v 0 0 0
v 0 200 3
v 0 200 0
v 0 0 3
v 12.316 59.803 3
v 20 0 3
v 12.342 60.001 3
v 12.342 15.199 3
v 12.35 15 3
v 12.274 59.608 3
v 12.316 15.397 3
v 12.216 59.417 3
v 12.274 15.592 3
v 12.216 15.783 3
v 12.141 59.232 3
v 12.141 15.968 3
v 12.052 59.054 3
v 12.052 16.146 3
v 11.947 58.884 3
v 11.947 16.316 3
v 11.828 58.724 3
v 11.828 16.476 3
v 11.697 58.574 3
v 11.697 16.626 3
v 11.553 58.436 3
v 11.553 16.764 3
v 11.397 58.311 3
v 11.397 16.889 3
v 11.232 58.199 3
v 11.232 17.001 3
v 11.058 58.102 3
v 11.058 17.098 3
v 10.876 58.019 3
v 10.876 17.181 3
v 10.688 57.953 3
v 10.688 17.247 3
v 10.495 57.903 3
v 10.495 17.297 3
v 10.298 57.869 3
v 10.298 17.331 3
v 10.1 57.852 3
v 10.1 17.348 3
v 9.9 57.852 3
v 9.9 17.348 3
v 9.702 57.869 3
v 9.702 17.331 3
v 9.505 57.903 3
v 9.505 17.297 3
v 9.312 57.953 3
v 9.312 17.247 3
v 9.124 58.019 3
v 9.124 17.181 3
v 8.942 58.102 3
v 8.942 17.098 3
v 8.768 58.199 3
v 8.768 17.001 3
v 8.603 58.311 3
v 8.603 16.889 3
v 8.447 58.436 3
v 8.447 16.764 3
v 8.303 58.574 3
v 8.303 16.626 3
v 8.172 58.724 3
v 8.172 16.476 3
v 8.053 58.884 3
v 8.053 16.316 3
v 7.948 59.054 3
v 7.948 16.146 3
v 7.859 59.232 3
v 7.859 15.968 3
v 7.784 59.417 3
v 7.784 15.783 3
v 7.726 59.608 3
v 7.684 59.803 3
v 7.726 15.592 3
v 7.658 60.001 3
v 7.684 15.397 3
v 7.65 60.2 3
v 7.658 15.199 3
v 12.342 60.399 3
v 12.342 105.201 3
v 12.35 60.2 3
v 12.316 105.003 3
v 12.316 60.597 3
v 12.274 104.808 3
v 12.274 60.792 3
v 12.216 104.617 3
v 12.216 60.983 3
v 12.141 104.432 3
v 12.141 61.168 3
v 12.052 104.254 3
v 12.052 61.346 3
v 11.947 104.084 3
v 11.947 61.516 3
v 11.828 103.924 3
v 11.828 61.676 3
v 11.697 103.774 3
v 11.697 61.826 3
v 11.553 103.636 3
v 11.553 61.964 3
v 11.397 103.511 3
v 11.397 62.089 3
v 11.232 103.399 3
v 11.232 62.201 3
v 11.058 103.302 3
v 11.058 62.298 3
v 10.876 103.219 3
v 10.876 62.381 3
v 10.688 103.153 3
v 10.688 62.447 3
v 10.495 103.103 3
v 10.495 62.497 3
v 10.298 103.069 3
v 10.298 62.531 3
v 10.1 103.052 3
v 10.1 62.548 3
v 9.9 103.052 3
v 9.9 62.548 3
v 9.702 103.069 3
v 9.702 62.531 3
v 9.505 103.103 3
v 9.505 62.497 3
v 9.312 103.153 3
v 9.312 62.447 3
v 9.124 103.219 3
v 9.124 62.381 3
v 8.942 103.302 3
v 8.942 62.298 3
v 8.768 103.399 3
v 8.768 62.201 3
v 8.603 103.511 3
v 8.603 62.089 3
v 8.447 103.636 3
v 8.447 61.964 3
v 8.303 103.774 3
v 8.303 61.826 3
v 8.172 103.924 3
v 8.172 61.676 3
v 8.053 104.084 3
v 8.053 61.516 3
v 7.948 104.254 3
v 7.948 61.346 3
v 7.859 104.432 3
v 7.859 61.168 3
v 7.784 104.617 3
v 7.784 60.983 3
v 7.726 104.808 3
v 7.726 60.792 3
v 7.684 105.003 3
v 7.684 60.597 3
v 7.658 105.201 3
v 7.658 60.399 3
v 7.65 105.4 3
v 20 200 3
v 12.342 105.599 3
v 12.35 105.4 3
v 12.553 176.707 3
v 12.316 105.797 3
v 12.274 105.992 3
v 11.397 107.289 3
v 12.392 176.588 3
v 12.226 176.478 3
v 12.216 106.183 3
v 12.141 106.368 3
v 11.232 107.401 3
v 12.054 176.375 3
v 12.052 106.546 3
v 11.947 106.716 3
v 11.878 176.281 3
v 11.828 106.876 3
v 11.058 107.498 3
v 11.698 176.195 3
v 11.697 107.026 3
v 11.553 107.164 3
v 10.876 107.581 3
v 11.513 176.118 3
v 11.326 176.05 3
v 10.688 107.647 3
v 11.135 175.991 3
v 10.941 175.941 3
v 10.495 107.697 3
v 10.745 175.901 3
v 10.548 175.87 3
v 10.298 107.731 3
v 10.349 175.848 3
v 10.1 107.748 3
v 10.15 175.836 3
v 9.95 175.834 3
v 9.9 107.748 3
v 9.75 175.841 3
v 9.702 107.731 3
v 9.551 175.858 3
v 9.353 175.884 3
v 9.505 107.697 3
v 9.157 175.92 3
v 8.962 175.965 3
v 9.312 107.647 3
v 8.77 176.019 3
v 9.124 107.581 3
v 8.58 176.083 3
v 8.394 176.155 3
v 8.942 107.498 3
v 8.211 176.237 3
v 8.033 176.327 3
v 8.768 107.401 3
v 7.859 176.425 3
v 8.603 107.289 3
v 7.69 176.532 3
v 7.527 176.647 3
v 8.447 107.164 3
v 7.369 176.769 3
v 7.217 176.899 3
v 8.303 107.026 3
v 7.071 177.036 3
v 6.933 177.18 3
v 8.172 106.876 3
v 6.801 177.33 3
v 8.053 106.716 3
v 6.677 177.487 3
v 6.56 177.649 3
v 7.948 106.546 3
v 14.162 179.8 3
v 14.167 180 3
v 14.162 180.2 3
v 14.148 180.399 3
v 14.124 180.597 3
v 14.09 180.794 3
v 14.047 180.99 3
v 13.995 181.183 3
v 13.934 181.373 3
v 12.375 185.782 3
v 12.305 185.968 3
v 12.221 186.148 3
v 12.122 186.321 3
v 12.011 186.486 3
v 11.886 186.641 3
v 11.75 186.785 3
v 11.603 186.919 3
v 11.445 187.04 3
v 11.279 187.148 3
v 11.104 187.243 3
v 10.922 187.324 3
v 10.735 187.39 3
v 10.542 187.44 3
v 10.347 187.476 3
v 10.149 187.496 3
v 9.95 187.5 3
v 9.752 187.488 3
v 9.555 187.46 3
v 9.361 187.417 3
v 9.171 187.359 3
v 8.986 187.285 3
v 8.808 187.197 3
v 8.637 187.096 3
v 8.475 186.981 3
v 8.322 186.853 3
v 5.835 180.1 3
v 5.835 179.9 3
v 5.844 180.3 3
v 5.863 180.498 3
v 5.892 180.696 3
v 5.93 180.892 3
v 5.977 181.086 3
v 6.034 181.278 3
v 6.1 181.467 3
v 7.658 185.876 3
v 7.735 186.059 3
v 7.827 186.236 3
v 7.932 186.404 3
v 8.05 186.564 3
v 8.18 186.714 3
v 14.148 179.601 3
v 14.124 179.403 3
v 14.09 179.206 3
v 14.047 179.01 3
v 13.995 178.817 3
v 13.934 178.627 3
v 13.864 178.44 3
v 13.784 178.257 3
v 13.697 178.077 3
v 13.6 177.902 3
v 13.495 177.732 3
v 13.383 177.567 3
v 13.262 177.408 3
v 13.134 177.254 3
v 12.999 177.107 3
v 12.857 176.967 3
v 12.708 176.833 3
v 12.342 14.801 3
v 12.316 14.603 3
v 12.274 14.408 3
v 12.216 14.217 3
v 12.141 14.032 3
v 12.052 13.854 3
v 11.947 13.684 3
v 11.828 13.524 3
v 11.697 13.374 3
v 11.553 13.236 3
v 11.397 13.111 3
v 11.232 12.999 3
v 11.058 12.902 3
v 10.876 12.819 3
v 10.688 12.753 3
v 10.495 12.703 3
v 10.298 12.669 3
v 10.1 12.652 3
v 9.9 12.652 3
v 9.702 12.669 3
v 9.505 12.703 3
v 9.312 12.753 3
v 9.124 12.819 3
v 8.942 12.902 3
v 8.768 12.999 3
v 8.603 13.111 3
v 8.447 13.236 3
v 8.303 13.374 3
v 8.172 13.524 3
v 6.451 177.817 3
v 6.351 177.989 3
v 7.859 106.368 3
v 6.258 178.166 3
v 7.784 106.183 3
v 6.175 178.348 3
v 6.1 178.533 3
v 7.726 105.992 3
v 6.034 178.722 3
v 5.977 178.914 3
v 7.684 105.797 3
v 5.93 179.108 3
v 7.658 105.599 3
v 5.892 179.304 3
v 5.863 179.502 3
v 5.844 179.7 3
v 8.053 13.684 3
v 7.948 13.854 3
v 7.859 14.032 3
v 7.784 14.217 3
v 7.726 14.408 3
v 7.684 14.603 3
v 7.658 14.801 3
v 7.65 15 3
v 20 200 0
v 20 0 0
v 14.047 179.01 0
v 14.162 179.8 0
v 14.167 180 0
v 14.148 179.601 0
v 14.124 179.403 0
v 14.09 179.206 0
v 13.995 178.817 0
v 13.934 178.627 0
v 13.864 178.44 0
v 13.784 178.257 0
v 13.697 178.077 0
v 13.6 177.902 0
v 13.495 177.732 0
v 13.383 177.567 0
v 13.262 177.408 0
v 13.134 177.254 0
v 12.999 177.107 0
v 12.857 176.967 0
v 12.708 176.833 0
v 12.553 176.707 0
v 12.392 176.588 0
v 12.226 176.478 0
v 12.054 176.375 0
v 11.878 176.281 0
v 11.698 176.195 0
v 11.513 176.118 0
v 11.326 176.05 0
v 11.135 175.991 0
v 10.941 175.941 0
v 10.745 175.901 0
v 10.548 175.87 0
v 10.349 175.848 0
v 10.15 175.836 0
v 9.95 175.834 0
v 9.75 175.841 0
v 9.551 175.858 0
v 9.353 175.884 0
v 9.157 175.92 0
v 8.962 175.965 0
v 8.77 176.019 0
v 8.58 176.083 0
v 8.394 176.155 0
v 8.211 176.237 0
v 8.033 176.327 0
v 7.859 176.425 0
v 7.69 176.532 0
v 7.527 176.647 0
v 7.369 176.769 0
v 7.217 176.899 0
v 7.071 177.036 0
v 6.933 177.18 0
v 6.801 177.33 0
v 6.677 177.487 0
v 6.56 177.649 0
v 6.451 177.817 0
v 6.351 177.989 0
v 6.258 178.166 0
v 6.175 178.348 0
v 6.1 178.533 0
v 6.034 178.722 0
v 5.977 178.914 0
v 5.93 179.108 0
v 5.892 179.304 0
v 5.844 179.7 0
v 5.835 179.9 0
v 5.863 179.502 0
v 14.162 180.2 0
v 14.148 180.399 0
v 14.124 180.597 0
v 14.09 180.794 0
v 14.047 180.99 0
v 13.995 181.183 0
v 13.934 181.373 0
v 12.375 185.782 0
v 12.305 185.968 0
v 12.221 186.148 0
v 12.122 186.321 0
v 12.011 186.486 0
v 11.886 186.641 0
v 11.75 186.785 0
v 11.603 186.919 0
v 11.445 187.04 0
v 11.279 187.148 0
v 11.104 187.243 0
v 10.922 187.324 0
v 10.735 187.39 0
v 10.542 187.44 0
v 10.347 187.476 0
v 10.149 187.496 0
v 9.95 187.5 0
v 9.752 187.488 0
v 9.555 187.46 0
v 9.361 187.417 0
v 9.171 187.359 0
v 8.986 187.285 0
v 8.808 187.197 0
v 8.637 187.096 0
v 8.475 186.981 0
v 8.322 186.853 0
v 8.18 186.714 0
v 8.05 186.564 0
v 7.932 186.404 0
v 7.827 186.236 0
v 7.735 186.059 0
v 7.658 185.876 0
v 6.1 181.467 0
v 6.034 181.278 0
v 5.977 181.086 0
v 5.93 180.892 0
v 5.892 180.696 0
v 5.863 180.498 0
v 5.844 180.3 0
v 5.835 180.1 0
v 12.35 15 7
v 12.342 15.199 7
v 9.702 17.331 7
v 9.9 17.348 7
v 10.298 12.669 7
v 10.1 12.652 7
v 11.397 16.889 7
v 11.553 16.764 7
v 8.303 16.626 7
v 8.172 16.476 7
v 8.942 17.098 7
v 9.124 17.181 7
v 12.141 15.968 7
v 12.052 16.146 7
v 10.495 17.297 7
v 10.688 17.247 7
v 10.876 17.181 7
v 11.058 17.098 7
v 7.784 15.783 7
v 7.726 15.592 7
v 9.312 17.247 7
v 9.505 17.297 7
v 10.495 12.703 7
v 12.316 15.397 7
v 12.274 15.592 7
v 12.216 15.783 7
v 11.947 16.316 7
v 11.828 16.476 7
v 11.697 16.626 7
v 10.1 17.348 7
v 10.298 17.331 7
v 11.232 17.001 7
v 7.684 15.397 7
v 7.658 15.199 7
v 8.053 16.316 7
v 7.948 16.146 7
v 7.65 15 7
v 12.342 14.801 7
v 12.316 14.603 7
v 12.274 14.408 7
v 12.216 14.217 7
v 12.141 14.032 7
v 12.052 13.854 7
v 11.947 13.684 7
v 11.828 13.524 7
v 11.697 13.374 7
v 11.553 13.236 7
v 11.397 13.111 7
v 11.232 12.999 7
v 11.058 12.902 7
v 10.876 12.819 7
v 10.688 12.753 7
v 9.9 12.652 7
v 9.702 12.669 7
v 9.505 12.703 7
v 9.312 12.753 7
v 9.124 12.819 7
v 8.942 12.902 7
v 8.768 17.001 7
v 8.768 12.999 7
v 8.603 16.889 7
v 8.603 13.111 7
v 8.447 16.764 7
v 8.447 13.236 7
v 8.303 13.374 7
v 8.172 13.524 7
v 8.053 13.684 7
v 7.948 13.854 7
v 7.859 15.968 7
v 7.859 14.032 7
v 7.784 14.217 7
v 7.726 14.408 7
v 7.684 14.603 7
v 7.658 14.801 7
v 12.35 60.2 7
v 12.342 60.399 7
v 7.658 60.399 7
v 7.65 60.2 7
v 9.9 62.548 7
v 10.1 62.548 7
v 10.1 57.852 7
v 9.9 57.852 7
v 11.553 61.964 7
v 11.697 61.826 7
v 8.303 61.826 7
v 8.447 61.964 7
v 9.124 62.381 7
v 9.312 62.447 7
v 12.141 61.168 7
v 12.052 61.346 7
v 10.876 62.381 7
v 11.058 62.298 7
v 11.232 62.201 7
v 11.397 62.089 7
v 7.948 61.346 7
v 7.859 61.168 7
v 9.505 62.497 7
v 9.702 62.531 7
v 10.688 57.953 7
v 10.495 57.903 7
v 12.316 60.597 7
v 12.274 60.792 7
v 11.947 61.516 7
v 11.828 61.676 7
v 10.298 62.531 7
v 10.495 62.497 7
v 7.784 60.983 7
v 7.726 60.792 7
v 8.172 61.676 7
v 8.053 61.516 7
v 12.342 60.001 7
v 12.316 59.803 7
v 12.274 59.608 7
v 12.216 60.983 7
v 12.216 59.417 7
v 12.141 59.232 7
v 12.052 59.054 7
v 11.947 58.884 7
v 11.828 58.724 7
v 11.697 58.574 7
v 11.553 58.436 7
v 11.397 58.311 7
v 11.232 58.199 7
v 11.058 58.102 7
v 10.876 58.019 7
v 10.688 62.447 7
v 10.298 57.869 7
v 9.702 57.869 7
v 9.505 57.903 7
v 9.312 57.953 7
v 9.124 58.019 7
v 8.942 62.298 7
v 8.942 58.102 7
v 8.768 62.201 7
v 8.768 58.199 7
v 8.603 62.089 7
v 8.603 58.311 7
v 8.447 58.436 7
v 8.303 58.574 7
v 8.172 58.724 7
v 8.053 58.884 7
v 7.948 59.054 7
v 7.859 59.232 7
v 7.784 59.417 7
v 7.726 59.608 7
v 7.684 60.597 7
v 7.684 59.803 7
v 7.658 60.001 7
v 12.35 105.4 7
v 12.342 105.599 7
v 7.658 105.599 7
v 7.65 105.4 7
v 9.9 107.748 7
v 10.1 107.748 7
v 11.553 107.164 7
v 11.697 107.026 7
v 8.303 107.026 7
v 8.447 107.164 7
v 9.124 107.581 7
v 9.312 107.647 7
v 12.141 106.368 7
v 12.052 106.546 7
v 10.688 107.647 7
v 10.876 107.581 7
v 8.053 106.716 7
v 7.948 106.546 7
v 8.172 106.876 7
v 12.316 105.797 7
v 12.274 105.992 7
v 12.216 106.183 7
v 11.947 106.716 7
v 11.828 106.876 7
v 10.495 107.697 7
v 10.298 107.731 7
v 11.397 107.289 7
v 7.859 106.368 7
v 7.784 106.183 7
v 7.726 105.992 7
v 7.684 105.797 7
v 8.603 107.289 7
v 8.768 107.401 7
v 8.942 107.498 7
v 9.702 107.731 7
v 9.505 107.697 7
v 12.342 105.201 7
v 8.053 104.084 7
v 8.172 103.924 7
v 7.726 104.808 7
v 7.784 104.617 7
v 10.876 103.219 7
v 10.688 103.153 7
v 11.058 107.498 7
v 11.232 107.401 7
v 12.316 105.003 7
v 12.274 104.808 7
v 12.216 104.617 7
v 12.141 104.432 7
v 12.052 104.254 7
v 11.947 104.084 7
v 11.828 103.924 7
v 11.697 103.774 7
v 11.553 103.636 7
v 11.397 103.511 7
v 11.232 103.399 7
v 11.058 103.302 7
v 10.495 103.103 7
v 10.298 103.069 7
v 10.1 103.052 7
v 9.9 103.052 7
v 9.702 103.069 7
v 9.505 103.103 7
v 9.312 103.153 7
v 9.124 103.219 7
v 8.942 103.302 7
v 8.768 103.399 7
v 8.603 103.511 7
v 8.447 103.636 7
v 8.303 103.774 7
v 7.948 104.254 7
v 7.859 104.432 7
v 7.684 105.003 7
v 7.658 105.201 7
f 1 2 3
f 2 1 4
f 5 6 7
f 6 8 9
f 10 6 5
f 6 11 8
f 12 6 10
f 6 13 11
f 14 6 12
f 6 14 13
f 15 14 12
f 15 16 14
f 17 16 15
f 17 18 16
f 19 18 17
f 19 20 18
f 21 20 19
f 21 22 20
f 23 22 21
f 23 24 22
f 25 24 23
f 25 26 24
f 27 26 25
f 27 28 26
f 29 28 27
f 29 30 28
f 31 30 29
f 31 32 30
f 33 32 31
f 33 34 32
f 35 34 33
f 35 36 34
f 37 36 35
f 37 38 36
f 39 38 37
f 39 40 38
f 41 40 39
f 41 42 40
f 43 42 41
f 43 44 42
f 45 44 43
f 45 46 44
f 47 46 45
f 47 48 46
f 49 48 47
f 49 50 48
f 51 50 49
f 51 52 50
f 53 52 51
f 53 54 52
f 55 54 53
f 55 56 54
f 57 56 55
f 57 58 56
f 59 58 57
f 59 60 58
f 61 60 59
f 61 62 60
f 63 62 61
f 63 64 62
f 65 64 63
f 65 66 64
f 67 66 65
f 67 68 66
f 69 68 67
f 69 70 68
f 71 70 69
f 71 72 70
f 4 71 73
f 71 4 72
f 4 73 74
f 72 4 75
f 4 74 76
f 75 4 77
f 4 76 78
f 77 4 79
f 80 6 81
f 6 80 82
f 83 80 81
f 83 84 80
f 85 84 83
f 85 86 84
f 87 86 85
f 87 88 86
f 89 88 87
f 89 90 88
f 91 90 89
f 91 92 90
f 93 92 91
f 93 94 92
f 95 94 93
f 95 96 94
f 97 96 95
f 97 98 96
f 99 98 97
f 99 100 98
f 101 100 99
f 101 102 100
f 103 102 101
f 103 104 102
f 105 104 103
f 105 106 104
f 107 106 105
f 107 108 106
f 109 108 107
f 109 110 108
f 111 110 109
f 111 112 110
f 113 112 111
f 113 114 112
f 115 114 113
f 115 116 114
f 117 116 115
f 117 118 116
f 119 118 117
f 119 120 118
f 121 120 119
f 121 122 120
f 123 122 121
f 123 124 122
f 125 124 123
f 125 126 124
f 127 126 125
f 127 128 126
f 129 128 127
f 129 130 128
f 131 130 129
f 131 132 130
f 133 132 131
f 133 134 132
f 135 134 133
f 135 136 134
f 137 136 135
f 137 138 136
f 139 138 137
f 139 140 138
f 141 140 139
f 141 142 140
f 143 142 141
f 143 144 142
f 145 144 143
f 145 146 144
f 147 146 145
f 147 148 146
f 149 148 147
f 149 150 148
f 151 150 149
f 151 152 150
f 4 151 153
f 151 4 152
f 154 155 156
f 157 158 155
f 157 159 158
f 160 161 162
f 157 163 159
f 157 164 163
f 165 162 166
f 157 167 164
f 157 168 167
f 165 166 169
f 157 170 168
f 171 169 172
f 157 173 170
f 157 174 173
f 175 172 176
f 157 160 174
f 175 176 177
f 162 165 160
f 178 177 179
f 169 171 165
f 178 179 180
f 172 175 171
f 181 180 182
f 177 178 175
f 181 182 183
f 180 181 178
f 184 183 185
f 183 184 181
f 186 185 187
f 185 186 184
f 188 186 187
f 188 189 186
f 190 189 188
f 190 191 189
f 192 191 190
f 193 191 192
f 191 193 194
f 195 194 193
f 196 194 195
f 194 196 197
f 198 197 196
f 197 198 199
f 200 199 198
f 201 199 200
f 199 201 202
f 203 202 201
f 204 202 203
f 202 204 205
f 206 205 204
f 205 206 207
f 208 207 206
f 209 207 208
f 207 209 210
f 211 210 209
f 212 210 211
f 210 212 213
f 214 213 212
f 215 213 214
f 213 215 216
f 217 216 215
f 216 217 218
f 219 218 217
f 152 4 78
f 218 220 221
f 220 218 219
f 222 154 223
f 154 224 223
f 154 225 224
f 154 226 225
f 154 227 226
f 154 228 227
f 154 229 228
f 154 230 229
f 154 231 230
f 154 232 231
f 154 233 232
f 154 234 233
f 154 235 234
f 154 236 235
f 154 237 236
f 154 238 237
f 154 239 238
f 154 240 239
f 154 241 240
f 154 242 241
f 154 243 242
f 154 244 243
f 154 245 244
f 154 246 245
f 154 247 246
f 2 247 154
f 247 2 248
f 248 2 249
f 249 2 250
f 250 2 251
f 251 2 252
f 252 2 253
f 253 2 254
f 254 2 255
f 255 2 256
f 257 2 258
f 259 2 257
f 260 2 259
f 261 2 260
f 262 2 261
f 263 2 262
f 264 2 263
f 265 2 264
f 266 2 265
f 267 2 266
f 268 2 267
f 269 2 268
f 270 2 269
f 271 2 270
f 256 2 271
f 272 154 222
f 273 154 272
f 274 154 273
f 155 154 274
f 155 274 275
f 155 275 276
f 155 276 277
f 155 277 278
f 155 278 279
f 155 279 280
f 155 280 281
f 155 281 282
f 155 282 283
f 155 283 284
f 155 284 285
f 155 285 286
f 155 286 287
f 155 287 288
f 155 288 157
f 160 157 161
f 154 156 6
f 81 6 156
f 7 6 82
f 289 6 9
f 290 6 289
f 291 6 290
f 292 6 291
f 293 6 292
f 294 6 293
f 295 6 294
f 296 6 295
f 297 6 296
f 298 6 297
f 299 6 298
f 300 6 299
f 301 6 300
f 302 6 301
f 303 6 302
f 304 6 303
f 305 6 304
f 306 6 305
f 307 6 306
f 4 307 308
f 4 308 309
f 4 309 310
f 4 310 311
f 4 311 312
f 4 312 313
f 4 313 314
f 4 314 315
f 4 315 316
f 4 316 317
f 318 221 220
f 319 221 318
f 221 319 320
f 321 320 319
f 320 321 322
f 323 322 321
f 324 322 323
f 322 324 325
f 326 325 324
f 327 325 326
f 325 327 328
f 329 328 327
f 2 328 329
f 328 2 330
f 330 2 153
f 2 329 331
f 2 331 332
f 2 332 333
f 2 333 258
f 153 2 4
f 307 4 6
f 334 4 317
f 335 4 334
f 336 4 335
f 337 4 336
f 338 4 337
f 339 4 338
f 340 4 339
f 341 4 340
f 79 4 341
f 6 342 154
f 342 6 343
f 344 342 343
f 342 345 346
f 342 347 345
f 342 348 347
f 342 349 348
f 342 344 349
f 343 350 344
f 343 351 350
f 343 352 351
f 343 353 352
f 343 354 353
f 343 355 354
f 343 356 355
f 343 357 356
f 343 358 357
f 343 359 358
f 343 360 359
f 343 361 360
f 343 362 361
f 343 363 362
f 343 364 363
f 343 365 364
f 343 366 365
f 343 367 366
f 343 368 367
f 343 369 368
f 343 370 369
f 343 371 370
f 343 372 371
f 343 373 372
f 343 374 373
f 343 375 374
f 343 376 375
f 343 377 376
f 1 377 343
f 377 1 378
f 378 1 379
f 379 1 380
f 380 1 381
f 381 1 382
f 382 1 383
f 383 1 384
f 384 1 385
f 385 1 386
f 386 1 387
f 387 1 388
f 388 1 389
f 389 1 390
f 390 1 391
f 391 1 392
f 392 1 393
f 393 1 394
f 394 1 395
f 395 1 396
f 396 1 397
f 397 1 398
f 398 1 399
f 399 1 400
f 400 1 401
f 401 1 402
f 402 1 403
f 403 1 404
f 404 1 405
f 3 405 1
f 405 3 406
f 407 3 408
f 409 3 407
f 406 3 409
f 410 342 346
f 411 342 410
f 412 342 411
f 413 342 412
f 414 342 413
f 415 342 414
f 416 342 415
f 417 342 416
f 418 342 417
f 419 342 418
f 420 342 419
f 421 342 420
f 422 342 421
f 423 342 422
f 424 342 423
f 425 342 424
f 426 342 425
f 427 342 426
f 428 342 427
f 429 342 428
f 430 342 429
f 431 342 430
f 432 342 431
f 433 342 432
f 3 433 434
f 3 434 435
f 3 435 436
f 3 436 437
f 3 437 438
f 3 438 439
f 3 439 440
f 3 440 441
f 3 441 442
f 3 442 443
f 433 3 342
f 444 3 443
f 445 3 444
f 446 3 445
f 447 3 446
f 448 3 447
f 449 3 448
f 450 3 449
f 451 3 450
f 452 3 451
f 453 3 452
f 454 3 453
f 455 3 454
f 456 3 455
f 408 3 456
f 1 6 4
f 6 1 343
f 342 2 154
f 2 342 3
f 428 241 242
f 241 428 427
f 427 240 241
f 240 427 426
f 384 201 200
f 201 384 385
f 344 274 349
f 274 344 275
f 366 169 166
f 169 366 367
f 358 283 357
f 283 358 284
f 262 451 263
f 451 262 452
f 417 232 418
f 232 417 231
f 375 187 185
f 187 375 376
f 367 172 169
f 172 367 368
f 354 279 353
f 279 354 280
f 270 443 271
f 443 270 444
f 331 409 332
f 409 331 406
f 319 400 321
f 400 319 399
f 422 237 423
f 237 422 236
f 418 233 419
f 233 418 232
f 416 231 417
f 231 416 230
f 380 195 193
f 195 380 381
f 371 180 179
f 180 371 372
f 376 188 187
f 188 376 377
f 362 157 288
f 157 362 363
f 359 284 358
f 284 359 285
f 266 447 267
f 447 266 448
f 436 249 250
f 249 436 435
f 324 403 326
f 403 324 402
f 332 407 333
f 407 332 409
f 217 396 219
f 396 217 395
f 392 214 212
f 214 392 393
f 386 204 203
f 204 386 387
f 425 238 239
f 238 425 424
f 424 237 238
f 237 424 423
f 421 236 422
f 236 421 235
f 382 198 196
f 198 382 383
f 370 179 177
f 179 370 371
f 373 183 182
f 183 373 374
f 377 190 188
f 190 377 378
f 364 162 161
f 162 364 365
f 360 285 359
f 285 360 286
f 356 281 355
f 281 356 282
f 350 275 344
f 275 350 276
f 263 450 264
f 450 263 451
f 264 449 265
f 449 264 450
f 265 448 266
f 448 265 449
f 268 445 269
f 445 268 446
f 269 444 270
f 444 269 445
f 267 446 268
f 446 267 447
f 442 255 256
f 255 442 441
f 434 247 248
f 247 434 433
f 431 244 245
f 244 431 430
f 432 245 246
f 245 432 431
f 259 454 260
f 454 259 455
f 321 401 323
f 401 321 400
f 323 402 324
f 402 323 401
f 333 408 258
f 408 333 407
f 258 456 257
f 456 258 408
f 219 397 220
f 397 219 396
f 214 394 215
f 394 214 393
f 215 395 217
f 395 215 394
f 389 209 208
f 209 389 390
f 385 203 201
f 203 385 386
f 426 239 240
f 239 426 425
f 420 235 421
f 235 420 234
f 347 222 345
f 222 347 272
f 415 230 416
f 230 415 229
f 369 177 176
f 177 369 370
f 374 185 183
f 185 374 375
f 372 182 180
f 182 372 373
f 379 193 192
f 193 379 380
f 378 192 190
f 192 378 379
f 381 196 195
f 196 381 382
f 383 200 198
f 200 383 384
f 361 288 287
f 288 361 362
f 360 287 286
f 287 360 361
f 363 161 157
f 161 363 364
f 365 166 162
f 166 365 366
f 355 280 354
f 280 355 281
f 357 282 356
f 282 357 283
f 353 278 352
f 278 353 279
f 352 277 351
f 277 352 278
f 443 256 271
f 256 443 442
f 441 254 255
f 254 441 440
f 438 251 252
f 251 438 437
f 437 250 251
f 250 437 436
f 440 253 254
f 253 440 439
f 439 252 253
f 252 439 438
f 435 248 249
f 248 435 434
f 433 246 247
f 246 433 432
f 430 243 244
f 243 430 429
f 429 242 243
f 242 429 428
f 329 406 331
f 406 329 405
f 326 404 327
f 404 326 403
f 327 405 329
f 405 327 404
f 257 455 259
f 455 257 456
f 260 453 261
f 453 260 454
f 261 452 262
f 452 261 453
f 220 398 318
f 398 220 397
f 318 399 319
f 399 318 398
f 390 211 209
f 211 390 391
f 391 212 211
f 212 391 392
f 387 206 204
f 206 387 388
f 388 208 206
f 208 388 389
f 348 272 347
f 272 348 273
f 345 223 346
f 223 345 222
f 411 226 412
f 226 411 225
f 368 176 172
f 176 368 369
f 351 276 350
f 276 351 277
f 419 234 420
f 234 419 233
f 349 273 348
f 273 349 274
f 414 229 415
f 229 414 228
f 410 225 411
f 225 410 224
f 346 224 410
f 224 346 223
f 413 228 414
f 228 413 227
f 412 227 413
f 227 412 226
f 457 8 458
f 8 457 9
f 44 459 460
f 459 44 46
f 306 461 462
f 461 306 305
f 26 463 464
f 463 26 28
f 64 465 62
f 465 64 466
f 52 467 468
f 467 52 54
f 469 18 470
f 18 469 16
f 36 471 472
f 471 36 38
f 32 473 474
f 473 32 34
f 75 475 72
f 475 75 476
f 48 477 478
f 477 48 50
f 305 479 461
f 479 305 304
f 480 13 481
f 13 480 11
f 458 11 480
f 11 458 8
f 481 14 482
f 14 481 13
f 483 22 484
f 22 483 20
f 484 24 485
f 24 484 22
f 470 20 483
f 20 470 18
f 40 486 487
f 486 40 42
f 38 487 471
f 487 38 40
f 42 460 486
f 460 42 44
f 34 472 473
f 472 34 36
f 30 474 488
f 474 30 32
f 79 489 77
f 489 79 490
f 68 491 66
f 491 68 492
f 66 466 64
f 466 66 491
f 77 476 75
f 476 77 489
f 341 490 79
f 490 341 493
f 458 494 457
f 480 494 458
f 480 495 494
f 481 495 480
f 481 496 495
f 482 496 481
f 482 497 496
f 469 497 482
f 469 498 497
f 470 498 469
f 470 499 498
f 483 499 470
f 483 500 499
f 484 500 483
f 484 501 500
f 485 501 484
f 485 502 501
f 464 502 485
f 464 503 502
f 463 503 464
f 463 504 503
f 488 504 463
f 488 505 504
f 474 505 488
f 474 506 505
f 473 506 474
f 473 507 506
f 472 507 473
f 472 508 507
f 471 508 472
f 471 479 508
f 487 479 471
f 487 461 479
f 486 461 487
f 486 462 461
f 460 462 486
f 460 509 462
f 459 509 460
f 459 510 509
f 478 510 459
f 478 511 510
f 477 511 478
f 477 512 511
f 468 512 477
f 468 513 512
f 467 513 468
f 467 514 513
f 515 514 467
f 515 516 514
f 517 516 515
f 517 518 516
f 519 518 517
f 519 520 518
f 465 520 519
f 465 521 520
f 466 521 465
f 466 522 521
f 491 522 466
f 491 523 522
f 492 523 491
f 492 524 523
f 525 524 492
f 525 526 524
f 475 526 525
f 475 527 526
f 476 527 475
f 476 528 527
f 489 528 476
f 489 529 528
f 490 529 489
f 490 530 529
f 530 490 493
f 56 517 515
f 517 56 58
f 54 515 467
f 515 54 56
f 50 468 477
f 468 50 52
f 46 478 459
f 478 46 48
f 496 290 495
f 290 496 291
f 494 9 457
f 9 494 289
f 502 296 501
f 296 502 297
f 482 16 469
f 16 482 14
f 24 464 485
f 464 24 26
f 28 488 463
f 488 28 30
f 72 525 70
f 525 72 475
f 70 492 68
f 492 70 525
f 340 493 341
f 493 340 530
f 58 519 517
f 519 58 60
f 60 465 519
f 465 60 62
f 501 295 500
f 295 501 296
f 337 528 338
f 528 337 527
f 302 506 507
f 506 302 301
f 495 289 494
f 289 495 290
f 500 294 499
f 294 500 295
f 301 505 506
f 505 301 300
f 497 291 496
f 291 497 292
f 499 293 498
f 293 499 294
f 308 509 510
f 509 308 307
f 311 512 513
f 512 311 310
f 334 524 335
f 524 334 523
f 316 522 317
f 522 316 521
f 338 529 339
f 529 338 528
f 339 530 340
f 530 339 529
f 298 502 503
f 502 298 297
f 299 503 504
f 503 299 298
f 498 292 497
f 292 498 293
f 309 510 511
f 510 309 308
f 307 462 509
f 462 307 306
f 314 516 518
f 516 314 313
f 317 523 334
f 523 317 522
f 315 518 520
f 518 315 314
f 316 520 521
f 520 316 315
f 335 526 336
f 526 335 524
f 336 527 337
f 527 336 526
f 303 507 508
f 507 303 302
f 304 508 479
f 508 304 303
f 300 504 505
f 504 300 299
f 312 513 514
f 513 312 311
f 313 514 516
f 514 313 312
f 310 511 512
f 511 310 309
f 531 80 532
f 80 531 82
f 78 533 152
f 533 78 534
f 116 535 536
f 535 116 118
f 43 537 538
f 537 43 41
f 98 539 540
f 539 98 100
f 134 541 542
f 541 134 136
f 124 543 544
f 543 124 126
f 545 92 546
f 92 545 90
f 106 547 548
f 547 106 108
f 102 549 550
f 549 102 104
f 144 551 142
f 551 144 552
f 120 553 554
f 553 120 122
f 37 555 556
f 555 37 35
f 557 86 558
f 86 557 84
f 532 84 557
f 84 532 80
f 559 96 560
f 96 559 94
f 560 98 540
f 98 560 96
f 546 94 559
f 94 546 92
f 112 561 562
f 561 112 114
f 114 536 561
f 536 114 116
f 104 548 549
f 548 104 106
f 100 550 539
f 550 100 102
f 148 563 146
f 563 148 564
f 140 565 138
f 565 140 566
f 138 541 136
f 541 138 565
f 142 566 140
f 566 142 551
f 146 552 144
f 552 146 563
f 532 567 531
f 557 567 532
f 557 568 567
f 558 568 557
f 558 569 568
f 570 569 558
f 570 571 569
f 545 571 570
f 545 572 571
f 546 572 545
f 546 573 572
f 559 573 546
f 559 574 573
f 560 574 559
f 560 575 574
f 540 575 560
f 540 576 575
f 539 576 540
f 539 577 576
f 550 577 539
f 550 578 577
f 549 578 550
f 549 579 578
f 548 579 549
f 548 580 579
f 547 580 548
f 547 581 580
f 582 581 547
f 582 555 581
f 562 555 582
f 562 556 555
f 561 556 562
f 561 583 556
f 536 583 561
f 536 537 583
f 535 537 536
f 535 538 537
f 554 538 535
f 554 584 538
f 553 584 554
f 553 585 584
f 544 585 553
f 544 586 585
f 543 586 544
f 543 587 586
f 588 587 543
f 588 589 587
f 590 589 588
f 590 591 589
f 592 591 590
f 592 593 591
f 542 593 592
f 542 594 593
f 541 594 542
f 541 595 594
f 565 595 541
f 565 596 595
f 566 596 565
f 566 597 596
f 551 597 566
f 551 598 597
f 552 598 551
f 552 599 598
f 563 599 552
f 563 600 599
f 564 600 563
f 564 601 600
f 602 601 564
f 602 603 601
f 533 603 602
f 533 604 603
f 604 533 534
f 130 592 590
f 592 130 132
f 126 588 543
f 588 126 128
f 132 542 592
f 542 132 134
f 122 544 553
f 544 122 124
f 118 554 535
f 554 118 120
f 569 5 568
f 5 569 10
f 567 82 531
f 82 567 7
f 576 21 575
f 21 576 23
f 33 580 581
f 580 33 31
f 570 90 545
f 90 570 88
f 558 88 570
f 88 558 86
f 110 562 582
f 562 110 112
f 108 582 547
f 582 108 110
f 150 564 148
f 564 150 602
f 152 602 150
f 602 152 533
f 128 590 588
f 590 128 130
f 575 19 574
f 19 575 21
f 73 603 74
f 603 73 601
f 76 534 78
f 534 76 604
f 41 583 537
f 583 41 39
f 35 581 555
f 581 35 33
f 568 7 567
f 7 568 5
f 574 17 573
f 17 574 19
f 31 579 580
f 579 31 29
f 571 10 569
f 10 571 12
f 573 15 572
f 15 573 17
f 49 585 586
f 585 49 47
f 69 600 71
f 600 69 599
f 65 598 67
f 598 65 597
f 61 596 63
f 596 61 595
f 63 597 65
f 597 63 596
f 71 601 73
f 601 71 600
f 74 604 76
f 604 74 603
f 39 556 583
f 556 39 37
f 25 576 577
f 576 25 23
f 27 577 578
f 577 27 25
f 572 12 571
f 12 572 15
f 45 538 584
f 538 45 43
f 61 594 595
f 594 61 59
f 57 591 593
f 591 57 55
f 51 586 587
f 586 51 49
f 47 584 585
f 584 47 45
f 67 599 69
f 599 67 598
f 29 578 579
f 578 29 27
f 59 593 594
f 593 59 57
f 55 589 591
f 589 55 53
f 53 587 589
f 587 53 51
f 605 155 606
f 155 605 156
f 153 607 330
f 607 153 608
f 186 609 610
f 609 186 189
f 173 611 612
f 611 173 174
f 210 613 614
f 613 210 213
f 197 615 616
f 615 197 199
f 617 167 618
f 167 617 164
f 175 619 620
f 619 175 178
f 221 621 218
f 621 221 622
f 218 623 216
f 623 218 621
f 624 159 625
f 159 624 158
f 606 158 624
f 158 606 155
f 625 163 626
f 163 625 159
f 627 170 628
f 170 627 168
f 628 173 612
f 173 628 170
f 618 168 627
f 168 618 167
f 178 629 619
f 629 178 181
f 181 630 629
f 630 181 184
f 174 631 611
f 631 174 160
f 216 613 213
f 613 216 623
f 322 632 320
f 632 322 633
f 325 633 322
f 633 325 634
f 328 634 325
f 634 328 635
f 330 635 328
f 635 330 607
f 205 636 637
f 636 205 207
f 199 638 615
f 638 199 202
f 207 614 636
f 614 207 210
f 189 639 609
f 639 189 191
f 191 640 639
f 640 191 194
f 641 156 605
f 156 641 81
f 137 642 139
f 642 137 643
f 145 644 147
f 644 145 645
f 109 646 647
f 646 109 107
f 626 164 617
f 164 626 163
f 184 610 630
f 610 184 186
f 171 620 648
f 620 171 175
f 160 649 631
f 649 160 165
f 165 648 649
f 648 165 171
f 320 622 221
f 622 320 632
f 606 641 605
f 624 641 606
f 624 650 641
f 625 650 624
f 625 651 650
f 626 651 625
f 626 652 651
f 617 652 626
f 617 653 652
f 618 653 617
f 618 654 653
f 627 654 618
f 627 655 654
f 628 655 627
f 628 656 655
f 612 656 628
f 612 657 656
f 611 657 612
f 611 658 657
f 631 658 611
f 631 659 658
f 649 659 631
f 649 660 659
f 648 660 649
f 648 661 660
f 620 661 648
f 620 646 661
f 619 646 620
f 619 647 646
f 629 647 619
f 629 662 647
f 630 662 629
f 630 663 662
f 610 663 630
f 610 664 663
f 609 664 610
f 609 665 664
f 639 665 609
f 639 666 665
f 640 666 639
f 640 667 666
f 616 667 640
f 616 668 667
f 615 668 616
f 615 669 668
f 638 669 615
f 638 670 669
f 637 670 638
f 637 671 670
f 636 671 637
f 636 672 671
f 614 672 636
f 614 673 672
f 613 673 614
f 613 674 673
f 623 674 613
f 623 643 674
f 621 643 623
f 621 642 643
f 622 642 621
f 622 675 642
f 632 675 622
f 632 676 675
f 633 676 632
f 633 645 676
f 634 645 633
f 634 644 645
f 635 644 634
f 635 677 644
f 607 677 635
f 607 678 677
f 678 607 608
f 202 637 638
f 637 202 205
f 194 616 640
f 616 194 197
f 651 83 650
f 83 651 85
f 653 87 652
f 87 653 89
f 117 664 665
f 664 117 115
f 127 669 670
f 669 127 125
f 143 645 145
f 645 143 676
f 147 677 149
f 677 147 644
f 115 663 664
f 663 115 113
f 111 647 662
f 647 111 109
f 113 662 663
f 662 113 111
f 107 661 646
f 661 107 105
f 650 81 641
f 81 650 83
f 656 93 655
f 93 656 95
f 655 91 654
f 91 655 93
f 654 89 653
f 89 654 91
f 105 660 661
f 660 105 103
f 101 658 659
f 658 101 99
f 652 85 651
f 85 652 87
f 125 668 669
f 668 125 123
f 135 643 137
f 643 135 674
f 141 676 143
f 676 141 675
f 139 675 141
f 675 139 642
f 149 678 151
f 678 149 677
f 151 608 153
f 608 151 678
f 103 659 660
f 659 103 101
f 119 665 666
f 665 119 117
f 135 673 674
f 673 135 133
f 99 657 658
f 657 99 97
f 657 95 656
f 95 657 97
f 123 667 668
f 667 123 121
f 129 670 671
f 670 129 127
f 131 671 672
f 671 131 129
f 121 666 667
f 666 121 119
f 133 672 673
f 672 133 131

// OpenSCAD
$fa = 1;
$fs = 0.2;

hole_dia = 4.7;
hole_sep = 40.5;
hole_height = 4;
padding = 15;

width = 20;
length = 200;
depth = 3;

nail_hole_dia = 5;

translate(v = [width/2, padding, 0])
    cylinder(r=hole_dia/2, h=hole_height+depth); 

translate(v = [width/2, padding+hole_sep+hole_dia, 0])
    cylinder(r=hole_dia/2, h=hole_height+depth); 

translate(v = [width/2, padding+(hole_sep+hole_dia)*2, 0])
    cylinder(r=hole_dia/2, h=hole_height+depth); 

difference() {
    cube([width, length, depth]);
    hull() {
        translate(v = [width/2, length-padding, 0]){
            cylinder(r=nail_hole_dia/2, h=depth); 
        }
        translate(v = [width/2, length-padding-nail_hole_dia, 0]){
            cylinder(r=nail_hole_dia/1.2, h=depth); 
        }
    }
}
